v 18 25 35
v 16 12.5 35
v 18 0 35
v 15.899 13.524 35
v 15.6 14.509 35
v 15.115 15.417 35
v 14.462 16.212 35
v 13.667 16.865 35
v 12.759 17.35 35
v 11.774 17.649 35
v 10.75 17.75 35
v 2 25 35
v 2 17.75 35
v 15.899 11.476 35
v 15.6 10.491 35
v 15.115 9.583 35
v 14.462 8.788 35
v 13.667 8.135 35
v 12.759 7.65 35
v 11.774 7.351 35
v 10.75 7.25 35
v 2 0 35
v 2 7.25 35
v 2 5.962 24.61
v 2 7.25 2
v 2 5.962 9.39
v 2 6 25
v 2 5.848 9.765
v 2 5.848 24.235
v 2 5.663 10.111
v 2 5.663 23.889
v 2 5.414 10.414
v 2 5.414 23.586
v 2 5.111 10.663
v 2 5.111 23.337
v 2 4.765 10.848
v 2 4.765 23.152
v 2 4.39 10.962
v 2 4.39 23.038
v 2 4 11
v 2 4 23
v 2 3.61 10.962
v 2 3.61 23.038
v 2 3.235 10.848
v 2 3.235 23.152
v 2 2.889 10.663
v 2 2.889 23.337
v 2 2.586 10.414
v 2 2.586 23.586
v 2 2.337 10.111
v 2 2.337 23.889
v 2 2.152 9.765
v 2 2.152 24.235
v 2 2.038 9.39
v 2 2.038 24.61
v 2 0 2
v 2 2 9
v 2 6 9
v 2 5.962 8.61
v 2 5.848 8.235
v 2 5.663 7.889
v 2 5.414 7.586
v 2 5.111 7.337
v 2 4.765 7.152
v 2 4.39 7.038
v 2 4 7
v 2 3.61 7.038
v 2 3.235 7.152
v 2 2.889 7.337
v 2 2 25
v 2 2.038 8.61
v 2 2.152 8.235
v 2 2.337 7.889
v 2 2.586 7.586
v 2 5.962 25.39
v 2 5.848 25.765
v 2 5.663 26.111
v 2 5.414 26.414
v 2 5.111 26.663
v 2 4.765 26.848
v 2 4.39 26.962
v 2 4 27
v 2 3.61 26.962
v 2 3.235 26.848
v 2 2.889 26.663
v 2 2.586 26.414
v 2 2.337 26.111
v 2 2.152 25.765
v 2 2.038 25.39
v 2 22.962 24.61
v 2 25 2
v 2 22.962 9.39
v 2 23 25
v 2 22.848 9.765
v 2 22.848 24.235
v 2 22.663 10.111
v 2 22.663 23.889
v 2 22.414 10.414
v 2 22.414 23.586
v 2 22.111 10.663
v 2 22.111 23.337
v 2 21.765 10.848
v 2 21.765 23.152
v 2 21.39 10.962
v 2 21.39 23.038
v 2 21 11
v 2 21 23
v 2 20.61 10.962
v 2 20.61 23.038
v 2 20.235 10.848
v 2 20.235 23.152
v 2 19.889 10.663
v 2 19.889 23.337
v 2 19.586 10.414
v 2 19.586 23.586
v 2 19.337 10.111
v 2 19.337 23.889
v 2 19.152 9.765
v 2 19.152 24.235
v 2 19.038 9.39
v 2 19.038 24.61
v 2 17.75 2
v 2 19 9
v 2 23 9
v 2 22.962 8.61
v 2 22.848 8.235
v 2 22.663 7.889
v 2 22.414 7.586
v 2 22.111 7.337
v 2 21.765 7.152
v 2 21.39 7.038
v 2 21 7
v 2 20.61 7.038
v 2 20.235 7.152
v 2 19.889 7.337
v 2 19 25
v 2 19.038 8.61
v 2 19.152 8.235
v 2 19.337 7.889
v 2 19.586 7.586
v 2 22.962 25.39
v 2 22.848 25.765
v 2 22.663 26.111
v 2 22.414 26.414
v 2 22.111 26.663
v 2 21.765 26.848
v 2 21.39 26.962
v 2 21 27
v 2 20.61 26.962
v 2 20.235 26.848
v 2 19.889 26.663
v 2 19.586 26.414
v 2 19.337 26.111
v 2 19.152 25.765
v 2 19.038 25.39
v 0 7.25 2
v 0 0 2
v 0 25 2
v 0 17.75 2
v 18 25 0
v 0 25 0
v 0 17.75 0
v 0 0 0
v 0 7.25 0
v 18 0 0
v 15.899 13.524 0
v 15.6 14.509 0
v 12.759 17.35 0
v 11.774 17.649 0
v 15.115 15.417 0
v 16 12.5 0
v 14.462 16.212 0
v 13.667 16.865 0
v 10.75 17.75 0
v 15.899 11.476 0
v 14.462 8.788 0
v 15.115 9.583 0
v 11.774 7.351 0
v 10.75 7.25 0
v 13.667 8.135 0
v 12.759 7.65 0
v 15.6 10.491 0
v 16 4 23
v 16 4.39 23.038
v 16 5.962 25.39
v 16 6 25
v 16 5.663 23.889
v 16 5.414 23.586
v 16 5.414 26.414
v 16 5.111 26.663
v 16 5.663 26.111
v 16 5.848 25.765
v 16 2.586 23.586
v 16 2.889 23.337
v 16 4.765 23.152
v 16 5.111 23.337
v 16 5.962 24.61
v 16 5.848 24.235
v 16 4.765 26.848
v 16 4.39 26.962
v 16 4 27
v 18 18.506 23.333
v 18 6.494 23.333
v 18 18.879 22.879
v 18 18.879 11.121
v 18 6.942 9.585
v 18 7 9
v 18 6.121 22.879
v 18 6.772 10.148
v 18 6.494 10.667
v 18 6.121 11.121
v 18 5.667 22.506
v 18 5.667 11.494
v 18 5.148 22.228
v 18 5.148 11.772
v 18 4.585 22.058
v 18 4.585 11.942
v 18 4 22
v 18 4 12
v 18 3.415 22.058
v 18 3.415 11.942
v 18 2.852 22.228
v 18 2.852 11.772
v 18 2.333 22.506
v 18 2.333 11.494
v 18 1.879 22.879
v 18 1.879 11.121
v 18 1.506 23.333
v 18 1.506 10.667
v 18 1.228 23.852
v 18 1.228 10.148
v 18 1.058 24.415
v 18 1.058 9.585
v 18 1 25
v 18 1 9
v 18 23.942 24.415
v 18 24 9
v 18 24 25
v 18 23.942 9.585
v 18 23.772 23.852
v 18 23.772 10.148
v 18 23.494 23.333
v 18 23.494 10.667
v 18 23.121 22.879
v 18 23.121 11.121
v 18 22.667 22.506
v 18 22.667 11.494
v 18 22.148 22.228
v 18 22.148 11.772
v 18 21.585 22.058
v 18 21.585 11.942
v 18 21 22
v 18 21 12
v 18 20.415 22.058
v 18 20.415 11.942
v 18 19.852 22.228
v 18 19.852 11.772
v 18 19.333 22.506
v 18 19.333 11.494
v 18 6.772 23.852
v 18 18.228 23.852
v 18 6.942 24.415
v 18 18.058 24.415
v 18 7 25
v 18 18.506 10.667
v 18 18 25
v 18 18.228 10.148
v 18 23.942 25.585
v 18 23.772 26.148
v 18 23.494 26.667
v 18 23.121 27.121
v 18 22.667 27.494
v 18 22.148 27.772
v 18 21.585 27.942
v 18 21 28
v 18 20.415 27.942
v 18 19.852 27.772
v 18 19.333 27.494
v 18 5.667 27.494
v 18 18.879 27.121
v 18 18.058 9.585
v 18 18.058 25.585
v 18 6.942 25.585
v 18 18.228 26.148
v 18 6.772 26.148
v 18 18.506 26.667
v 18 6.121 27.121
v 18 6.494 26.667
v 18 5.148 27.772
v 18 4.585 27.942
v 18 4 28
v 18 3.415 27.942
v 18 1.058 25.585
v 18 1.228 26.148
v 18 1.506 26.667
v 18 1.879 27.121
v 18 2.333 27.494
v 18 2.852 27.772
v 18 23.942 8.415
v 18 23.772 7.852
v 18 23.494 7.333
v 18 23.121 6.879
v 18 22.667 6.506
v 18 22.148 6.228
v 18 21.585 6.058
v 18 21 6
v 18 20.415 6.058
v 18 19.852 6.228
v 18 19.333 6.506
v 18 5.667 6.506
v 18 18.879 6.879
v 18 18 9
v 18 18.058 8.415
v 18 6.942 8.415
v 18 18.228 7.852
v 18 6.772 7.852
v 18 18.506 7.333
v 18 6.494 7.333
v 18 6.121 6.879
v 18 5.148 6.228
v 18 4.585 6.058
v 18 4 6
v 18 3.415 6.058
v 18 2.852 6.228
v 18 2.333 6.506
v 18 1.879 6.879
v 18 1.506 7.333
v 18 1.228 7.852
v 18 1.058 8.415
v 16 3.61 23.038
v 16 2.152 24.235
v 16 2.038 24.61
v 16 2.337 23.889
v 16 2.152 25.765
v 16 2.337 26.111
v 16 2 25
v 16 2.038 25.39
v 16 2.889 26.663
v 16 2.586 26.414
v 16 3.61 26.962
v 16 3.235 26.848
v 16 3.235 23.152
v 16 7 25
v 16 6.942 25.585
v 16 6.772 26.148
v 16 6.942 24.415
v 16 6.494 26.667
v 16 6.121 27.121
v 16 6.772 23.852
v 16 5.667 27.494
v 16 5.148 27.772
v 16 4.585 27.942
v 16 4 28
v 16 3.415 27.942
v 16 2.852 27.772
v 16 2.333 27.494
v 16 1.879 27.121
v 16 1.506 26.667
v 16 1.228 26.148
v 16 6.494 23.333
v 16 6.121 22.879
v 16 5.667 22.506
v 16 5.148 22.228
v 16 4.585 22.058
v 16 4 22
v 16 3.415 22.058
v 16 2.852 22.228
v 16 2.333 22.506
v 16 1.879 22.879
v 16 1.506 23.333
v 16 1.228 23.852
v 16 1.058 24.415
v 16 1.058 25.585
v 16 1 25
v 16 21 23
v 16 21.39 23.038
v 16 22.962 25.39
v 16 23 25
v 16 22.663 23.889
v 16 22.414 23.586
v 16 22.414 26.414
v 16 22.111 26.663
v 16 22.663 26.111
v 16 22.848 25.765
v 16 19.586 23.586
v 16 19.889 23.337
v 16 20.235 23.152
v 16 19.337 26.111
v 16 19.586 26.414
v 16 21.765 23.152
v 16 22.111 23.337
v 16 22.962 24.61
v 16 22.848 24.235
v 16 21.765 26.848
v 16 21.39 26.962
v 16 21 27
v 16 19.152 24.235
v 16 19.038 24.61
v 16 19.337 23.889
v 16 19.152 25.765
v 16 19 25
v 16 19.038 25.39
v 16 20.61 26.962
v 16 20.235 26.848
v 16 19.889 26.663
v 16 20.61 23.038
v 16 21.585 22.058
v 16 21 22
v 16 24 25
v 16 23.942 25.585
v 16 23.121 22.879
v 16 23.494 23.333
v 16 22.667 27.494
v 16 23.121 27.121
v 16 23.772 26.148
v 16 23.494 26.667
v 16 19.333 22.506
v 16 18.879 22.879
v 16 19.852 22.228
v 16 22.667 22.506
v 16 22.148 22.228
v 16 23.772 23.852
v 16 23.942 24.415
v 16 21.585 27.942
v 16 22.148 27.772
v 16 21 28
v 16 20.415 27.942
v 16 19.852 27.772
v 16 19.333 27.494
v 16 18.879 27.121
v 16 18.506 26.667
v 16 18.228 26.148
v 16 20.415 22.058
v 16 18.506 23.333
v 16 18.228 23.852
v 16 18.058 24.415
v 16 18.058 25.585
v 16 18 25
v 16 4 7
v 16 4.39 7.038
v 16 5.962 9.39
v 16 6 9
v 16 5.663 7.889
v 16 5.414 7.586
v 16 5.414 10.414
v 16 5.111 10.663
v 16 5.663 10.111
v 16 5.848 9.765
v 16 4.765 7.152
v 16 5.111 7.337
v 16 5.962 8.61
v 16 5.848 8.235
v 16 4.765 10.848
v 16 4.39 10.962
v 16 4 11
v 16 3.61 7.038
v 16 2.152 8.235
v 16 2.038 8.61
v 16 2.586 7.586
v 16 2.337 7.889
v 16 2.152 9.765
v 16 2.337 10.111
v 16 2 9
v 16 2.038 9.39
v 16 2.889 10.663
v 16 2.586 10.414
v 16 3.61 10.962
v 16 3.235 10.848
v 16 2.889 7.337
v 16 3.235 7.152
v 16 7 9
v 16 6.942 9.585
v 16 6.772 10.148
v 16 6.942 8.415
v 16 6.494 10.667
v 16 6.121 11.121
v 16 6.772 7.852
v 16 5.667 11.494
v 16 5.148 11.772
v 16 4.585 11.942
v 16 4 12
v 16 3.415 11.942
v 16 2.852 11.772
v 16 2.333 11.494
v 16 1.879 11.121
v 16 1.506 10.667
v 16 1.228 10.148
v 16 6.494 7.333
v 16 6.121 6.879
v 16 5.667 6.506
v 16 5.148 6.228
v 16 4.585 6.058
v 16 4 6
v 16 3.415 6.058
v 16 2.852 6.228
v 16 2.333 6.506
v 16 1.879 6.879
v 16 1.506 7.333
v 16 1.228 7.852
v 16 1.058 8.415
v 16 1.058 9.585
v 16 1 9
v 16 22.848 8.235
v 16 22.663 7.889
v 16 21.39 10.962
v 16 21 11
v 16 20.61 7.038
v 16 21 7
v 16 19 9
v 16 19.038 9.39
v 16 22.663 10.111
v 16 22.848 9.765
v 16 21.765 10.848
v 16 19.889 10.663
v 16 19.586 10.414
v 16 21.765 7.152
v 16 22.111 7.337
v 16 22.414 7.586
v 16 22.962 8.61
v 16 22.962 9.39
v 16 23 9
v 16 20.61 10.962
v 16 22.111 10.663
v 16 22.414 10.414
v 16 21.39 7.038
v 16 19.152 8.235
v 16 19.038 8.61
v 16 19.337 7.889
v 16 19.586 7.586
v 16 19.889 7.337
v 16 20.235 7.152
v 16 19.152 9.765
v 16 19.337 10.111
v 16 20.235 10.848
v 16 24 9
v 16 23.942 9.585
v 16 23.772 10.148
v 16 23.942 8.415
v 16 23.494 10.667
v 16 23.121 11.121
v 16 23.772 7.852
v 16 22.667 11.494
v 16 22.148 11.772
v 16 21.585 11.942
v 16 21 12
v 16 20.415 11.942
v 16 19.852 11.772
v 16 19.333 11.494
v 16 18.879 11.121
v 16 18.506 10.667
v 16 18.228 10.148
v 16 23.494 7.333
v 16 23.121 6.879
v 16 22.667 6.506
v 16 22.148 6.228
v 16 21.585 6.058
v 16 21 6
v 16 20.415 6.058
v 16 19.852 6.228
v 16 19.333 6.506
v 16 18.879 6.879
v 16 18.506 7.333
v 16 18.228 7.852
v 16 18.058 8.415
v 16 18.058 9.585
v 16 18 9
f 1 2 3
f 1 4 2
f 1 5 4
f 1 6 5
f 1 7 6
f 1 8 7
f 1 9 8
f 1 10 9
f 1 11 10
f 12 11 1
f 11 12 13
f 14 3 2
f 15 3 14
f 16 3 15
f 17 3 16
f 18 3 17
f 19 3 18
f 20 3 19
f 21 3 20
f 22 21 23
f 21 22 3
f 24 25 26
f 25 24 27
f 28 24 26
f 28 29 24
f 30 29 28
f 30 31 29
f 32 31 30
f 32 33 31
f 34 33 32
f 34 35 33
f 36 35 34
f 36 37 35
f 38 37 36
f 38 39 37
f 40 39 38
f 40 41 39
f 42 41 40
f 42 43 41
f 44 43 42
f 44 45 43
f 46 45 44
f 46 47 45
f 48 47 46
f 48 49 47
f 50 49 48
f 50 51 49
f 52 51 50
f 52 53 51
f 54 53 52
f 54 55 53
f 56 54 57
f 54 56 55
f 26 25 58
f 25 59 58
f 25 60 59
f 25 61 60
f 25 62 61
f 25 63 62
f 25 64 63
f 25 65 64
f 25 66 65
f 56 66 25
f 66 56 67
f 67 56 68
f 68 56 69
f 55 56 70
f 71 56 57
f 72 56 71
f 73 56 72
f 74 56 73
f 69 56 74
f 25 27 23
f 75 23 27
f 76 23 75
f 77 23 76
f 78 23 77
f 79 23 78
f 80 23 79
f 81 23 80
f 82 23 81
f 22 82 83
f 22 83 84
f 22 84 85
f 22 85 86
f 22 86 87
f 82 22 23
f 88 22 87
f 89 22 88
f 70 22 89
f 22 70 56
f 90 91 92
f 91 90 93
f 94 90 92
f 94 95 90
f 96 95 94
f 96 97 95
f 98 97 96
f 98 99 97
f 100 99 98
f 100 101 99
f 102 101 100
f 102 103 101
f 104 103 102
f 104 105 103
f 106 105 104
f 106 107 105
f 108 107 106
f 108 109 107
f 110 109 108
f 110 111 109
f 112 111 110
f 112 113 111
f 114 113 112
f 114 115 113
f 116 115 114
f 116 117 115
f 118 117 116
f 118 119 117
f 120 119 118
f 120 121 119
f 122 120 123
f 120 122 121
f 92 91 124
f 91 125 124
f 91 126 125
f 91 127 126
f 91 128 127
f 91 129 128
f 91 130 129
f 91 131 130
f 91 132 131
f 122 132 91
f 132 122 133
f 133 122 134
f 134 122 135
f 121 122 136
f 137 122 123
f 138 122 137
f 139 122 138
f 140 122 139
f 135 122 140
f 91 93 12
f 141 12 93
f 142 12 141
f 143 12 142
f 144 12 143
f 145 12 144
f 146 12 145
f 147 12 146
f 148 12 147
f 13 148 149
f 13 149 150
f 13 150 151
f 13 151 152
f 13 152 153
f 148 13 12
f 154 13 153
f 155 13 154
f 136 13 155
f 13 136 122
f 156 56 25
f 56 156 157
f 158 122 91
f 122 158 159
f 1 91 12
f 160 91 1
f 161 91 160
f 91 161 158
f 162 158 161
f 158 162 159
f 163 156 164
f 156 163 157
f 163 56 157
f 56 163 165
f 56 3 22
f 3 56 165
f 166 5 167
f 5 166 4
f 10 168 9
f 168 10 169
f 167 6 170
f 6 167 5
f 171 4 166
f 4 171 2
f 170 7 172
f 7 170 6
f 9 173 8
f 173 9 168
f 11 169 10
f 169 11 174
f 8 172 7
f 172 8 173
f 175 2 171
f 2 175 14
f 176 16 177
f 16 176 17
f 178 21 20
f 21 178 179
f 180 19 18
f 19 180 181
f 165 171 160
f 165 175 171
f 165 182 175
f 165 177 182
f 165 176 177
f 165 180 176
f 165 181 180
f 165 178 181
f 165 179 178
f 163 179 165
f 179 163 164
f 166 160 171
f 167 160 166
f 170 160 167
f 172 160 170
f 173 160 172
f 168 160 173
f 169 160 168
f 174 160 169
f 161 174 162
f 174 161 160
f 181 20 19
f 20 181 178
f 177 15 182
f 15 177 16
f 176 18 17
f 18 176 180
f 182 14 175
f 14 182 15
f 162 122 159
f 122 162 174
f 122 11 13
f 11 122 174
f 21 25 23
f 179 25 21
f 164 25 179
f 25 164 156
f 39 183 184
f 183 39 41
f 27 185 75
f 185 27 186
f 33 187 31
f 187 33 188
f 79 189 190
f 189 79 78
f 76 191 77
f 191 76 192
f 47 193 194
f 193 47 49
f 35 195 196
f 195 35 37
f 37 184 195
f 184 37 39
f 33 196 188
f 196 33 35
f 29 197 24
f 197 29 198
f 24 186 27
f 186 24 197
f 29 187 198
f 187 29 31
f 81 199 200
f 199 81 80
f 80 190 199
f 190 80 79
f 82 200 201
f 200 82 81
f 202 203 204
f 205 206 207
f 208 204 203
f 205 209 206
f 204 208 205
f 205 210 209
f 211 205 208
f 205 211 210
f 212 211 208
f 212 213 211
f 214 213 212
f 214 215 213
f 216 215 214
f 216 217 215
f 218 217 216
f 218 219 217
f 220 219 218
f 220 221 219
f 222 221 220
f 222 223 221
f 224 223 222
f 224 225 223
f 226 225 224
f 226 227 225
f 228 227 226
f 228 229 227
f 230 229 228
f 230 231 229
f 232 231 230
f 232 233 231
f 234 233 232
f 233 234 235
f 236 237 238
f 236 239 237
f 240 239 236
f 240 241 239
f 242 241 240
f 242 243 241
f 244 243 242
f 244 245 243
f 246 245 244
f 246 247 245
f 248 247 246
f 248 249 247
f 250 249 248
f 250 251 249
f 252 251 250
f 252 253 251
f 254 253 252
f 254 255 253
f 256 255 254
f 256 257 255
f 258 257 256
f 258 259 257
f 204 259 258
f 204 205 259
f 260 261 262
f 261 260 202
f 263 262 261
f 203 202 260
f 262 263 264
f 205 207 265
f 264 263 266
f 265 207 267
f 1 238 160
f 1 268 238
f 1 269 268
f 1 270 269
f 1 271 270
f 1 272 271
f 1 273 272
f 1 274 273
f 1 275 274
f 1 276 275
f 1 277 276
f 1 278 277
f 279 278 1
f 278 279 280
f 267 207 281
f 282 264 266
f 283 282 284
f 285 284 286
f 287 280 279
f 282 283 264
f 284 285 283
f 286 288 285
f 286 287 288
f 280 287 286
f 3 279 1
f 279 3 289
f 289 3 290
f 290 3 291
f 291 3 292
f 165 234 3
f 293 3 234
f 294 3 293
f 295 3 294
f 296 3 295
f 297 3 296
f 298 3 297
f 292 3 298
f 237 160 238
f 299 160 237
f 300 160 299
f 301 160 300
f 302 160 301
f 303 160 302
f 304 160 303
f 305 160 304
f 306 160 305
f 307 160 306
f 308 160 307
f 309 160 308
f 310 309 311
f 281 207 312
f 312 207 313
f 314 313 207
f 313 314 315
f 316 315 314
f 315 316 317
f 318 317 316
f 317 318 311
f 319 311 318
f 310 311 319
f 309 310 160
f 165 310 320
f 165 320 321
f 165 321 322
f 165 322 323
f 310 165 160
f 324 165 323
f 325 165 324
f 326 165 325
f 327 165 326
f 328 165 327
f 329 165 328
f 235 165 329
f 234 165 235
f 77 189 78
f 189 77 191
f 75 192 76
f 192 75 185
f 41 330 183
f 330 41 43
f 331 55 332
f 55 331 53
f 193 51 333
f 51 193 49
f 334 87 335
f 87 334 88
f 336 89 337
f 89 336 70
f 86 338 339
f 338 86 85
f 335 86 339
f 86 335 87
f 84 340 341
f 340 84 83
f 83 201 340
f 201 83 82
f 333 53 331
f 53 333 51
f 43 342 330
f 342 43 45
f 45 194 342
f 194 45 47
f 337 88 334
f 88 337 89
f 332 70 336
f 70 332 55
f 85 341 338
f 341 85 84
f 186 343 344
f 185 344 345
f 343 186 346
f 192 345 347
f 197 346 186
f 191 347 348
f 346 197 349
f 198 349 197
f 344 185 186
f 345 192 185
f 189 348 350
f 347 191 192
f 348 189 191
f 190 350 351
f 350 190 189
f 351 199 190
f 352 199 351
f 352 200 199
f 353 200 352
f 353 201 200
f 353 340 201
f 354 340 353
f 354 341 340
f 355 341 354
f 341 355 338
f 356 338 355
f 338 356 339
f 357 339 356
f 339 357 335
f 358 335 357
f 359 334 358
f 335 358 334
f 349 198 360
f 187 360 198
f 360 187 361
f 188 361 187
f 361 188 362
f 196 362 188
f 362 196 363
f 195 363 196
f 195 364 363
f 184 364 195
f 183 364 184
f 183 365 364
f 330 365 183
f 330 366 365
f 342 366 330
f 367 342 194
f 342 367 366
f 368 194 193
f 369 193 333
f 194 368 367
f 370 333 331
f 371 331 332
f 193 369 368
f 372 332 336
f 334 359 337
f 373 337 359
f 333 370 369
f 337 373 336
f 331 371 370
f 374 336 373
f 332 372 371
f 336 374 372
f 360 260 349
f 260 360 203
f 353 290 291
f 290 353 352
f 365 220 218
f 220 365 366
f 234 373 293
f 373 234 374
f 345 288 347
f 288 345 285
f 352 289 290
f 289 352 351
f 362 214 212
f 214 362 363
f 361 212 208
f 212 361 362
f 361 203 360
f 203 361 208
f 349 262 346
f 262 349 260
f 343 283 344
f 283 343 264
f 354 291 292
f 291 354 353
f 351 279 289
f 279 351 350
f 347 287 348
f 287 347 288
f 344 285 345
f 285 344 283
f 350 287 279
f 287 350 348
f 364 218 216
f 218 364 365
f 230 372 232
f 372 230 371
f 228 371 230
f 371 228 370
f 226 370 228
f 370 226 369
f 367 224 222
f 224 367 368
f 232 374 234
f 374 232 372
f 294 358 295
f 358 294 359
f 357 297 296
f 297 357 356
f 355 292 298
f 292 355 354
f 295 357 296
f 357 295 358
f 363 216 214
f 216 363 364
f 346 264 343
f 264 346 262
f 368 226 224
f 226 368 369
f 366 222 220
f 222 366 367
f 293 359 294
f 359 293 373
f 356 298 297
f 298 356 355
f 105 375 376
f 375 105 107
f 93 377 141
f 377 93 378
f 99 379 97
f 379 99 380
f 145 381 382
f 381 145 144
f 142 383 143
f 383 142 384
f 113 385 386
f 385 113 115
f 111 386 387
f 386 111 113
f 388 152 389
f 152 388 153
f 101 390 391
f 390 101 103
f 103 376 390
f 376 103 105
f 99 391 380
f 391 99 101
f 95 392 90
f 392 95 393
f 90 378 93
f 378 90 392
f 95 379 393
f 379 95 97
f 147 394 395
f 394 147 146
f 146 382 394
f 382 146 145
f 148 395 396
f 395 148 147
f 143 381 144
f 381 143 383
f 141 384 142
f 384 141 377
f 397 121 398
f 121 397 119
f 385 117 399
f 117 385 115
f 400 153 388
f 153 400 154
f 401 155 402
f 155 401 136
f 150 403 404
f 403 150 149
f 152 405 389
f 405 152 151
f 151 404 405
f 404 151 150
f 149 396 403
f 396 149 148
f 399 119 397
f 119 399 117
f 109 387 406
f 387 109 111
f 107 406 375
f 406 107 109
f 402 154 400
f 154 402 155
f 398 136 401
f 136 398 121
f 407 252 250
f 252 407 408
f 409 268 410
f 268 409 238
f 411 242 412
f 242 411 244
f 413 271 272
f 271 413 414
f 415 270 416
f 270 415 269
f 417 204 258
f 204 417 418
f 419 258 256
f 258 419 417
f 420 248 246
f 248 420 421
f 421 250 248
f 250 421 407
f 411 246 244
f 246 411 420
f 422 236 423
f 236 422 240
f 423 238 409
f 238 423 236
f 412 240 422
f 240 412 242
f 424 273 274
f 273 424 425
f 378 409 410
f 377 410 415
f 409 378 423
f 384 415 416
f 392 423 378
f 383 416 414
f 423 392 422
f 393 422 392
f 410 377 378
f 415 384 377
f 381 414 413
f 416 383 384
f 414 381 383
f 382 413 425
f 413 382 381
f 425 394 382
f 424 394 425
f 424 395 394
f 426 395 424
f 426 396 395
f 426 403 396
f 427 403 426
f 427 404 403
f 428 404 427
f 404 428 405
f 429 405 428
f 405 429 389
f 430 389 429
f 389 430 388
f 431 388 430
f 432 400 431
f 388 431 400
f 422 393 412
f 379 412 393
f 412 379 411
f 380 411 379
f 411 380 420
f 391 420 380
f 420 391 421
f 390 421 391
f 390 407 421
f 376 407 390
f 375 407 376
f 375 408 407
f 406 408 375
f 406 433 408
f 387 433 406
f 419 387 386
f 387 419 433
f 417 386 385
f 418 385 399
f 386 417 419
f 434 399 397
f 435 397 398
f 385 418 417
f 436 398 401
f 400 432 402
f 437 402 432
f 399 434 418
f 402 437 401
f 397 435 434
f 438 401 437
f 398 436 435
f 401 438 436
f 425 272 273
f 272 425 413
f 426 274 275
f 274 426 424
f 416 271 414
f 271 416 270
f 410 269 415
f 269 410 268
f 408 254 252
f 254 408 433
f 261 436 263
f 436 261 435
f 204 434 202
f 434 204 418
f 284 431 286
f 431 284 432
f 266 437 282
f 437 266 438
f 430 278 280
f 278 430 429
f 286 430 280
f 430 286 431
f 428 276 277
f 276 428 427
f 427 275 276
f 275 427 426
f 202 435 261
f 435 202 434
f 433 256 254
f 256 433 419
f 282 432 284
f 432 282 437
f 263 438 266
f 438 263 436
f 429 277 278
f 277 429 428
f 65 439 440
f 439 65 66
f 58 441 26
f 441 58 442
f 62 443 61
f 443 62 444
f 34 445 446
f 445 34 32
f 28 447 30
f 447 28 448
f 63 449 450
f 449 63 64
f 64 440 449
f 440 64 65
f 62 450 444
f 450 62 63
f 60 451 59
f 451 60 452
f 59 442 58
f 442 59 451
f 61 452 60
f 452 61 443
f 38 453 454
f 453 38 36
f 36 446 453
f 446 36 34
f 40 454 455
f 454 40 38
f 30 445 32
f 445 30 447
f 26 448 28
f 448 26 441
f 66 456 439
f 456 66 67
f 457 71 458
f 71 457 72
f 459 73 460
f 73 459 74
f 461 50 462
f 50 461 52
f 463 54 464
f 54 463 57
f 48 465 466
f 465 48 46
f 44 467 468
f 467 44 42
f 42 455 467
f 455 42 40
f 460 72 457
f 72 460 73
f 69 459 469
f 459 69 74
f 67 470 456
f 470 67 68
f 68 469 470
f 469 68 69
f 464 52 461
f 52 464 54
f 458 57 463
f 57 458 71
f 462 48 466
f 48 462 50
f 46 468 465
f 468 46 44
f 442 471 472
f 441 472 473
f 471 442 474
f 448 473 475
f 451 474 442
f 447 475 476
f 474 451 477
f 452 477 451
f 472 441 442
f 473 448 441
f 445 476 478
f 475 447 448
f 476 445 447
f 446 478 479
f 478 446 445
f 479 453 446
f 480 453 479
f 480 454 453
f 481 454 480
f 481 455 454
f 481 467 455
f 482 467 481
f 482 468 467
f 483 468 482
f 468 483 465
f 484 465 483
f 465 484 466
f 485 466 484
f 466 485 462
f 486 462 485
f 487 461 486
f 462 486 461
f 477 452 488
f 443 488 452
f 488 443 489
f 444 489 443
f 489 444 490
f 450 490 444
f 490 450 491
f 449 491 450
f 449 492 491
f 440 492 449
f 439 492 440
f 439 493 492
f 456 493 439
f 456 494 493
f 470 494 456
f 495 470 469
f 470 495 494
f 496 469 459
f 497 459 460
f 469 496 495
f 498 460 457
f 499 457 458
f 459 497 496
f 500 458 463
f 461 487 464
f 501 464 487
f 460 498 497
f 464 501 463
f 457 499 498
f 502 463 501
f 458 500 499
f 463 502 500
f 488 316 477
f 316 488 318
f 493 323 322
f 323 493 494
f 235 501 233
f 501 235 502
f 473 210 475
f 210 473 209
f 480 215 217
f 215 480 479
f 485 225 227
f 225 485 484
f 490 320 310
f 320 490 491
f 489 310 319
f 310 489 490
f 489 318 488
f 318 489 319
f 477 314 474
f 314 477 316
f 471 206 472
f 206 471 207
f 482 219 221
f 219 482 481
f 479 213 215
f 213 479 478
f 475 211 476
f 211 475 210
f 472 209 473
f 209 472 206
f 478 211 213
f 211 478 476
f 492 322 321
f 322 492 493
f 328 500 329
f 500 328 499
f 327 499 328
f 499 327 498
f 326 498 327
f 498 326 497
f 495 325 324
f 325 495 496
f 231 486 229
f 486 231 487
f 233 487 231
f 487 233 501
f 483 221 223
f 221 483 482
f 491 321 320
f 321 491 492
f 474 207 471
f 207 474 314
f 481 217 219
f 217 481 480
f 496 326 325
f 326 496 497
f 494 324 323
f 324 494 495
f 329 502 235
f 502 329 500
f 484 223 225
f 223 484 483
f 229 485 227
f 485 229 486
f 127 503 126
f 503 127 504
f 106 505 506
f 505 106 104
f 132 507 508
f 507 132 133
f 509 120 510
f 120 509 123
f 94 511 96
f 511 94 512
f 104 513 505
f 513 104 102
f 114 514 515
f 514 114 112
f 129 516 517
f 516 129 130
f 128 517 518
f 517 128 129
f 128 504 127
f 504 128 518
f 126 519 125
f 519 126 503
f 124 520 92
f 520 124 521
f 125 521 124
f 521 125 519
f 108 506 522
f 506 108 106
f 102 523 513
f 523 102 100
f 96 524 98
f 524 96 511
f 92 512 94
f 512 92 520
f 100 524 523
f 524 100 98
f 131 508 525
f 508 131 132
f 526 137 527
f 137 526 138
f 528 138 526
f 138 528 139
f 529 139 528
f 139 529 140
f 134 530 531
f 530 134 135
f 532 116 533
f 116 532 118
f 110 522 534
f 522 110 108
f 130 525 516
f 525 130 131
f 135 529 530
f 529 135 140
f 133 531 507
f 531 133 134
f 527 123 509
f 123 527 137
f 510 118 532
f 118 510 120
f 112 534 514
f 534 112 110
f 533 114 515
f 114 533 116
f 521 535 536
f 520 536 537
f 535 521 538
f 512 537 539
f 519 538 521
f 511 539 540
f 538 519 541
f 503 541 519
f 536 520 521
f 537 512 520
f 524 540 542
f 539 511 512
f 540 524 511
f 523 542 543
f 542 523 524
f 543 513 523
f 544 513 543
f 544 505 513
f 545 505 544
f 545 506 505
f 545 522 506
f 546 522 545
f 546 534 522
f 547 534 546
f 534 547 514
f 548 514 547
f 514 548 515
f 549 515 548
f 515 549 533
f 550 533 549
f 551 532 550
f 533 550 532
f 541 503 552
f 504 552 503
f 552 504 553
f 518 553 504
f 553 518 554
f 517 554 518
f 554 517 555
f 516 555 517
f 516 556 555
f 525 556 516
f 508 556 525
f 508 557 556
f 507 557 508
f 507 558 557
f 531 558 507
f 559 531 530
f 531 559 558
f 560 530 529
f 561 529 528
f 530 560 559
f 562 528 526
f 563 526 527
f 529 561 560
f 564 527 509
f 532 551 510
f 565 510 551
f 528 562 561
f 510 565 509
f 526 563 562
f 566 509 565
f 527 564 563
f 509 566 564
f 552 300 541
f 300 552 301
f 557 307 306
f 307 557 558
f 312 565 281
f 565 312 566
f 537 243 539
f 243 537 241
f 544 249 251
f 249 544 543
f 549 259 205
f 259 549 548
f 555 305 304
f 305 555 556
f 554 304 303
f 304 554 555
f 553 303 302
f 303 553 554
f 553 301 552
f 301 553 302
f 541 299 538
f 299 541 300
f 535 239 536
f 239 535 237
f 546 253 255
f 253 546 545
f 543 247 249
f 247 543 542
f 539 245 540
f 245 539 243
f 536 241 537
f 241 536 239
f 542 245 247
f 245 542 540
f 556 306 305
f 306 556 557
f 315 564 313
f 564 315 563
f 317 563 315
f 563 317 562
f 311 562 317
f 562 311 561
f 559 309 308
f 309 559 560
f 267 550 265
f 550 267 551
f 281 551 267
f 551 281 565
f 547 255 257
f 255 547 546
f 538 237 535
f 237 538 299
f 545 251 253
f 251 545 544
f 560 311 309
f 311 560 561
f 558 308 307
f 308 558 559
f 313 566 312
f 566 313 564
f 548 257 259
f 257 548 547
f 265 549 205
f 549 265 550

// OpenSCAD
height = 18;
diameter = 10.5;

module y_bracket() {
    
    difference() {
            union() {
                cube([35, 25, height]);
            }
            union() {
                cube([33, 25, 2]);
                translate([0, 12.5, height - (diameter/2) - 2]) rotate([0,90,0]) cylinder(h=35, d=diameter);
                translate([0, 7.25, 0]) cube([35, diameter, height - (diameter/2) - 2]);
                
                translate([10, 4, 0]) cylinder(h=height, d=4);
                translate([10, 4, height-2]) cylinder(h=2, d=6);
                translate([10, 21, 0]) cylinder(h=height, d=4);
                translate([10, 21, height-2]) cylinder(h=2, d=6);
                
                translate([26, 4, 0]) cylinder(h=height, d=4);
                translate([26, 4, height-2]) cylinder(h=2, d=6);
                translate([26, 21, 0]) cylinder(h=height, d=4);
                translate([26, 21, height-2]) cylinder(h=2, d=6);
            }
    }
    
}
$fn=32;
rotate([0, 90, 0]) translate([-35, 0, 0]) y_bracket();
